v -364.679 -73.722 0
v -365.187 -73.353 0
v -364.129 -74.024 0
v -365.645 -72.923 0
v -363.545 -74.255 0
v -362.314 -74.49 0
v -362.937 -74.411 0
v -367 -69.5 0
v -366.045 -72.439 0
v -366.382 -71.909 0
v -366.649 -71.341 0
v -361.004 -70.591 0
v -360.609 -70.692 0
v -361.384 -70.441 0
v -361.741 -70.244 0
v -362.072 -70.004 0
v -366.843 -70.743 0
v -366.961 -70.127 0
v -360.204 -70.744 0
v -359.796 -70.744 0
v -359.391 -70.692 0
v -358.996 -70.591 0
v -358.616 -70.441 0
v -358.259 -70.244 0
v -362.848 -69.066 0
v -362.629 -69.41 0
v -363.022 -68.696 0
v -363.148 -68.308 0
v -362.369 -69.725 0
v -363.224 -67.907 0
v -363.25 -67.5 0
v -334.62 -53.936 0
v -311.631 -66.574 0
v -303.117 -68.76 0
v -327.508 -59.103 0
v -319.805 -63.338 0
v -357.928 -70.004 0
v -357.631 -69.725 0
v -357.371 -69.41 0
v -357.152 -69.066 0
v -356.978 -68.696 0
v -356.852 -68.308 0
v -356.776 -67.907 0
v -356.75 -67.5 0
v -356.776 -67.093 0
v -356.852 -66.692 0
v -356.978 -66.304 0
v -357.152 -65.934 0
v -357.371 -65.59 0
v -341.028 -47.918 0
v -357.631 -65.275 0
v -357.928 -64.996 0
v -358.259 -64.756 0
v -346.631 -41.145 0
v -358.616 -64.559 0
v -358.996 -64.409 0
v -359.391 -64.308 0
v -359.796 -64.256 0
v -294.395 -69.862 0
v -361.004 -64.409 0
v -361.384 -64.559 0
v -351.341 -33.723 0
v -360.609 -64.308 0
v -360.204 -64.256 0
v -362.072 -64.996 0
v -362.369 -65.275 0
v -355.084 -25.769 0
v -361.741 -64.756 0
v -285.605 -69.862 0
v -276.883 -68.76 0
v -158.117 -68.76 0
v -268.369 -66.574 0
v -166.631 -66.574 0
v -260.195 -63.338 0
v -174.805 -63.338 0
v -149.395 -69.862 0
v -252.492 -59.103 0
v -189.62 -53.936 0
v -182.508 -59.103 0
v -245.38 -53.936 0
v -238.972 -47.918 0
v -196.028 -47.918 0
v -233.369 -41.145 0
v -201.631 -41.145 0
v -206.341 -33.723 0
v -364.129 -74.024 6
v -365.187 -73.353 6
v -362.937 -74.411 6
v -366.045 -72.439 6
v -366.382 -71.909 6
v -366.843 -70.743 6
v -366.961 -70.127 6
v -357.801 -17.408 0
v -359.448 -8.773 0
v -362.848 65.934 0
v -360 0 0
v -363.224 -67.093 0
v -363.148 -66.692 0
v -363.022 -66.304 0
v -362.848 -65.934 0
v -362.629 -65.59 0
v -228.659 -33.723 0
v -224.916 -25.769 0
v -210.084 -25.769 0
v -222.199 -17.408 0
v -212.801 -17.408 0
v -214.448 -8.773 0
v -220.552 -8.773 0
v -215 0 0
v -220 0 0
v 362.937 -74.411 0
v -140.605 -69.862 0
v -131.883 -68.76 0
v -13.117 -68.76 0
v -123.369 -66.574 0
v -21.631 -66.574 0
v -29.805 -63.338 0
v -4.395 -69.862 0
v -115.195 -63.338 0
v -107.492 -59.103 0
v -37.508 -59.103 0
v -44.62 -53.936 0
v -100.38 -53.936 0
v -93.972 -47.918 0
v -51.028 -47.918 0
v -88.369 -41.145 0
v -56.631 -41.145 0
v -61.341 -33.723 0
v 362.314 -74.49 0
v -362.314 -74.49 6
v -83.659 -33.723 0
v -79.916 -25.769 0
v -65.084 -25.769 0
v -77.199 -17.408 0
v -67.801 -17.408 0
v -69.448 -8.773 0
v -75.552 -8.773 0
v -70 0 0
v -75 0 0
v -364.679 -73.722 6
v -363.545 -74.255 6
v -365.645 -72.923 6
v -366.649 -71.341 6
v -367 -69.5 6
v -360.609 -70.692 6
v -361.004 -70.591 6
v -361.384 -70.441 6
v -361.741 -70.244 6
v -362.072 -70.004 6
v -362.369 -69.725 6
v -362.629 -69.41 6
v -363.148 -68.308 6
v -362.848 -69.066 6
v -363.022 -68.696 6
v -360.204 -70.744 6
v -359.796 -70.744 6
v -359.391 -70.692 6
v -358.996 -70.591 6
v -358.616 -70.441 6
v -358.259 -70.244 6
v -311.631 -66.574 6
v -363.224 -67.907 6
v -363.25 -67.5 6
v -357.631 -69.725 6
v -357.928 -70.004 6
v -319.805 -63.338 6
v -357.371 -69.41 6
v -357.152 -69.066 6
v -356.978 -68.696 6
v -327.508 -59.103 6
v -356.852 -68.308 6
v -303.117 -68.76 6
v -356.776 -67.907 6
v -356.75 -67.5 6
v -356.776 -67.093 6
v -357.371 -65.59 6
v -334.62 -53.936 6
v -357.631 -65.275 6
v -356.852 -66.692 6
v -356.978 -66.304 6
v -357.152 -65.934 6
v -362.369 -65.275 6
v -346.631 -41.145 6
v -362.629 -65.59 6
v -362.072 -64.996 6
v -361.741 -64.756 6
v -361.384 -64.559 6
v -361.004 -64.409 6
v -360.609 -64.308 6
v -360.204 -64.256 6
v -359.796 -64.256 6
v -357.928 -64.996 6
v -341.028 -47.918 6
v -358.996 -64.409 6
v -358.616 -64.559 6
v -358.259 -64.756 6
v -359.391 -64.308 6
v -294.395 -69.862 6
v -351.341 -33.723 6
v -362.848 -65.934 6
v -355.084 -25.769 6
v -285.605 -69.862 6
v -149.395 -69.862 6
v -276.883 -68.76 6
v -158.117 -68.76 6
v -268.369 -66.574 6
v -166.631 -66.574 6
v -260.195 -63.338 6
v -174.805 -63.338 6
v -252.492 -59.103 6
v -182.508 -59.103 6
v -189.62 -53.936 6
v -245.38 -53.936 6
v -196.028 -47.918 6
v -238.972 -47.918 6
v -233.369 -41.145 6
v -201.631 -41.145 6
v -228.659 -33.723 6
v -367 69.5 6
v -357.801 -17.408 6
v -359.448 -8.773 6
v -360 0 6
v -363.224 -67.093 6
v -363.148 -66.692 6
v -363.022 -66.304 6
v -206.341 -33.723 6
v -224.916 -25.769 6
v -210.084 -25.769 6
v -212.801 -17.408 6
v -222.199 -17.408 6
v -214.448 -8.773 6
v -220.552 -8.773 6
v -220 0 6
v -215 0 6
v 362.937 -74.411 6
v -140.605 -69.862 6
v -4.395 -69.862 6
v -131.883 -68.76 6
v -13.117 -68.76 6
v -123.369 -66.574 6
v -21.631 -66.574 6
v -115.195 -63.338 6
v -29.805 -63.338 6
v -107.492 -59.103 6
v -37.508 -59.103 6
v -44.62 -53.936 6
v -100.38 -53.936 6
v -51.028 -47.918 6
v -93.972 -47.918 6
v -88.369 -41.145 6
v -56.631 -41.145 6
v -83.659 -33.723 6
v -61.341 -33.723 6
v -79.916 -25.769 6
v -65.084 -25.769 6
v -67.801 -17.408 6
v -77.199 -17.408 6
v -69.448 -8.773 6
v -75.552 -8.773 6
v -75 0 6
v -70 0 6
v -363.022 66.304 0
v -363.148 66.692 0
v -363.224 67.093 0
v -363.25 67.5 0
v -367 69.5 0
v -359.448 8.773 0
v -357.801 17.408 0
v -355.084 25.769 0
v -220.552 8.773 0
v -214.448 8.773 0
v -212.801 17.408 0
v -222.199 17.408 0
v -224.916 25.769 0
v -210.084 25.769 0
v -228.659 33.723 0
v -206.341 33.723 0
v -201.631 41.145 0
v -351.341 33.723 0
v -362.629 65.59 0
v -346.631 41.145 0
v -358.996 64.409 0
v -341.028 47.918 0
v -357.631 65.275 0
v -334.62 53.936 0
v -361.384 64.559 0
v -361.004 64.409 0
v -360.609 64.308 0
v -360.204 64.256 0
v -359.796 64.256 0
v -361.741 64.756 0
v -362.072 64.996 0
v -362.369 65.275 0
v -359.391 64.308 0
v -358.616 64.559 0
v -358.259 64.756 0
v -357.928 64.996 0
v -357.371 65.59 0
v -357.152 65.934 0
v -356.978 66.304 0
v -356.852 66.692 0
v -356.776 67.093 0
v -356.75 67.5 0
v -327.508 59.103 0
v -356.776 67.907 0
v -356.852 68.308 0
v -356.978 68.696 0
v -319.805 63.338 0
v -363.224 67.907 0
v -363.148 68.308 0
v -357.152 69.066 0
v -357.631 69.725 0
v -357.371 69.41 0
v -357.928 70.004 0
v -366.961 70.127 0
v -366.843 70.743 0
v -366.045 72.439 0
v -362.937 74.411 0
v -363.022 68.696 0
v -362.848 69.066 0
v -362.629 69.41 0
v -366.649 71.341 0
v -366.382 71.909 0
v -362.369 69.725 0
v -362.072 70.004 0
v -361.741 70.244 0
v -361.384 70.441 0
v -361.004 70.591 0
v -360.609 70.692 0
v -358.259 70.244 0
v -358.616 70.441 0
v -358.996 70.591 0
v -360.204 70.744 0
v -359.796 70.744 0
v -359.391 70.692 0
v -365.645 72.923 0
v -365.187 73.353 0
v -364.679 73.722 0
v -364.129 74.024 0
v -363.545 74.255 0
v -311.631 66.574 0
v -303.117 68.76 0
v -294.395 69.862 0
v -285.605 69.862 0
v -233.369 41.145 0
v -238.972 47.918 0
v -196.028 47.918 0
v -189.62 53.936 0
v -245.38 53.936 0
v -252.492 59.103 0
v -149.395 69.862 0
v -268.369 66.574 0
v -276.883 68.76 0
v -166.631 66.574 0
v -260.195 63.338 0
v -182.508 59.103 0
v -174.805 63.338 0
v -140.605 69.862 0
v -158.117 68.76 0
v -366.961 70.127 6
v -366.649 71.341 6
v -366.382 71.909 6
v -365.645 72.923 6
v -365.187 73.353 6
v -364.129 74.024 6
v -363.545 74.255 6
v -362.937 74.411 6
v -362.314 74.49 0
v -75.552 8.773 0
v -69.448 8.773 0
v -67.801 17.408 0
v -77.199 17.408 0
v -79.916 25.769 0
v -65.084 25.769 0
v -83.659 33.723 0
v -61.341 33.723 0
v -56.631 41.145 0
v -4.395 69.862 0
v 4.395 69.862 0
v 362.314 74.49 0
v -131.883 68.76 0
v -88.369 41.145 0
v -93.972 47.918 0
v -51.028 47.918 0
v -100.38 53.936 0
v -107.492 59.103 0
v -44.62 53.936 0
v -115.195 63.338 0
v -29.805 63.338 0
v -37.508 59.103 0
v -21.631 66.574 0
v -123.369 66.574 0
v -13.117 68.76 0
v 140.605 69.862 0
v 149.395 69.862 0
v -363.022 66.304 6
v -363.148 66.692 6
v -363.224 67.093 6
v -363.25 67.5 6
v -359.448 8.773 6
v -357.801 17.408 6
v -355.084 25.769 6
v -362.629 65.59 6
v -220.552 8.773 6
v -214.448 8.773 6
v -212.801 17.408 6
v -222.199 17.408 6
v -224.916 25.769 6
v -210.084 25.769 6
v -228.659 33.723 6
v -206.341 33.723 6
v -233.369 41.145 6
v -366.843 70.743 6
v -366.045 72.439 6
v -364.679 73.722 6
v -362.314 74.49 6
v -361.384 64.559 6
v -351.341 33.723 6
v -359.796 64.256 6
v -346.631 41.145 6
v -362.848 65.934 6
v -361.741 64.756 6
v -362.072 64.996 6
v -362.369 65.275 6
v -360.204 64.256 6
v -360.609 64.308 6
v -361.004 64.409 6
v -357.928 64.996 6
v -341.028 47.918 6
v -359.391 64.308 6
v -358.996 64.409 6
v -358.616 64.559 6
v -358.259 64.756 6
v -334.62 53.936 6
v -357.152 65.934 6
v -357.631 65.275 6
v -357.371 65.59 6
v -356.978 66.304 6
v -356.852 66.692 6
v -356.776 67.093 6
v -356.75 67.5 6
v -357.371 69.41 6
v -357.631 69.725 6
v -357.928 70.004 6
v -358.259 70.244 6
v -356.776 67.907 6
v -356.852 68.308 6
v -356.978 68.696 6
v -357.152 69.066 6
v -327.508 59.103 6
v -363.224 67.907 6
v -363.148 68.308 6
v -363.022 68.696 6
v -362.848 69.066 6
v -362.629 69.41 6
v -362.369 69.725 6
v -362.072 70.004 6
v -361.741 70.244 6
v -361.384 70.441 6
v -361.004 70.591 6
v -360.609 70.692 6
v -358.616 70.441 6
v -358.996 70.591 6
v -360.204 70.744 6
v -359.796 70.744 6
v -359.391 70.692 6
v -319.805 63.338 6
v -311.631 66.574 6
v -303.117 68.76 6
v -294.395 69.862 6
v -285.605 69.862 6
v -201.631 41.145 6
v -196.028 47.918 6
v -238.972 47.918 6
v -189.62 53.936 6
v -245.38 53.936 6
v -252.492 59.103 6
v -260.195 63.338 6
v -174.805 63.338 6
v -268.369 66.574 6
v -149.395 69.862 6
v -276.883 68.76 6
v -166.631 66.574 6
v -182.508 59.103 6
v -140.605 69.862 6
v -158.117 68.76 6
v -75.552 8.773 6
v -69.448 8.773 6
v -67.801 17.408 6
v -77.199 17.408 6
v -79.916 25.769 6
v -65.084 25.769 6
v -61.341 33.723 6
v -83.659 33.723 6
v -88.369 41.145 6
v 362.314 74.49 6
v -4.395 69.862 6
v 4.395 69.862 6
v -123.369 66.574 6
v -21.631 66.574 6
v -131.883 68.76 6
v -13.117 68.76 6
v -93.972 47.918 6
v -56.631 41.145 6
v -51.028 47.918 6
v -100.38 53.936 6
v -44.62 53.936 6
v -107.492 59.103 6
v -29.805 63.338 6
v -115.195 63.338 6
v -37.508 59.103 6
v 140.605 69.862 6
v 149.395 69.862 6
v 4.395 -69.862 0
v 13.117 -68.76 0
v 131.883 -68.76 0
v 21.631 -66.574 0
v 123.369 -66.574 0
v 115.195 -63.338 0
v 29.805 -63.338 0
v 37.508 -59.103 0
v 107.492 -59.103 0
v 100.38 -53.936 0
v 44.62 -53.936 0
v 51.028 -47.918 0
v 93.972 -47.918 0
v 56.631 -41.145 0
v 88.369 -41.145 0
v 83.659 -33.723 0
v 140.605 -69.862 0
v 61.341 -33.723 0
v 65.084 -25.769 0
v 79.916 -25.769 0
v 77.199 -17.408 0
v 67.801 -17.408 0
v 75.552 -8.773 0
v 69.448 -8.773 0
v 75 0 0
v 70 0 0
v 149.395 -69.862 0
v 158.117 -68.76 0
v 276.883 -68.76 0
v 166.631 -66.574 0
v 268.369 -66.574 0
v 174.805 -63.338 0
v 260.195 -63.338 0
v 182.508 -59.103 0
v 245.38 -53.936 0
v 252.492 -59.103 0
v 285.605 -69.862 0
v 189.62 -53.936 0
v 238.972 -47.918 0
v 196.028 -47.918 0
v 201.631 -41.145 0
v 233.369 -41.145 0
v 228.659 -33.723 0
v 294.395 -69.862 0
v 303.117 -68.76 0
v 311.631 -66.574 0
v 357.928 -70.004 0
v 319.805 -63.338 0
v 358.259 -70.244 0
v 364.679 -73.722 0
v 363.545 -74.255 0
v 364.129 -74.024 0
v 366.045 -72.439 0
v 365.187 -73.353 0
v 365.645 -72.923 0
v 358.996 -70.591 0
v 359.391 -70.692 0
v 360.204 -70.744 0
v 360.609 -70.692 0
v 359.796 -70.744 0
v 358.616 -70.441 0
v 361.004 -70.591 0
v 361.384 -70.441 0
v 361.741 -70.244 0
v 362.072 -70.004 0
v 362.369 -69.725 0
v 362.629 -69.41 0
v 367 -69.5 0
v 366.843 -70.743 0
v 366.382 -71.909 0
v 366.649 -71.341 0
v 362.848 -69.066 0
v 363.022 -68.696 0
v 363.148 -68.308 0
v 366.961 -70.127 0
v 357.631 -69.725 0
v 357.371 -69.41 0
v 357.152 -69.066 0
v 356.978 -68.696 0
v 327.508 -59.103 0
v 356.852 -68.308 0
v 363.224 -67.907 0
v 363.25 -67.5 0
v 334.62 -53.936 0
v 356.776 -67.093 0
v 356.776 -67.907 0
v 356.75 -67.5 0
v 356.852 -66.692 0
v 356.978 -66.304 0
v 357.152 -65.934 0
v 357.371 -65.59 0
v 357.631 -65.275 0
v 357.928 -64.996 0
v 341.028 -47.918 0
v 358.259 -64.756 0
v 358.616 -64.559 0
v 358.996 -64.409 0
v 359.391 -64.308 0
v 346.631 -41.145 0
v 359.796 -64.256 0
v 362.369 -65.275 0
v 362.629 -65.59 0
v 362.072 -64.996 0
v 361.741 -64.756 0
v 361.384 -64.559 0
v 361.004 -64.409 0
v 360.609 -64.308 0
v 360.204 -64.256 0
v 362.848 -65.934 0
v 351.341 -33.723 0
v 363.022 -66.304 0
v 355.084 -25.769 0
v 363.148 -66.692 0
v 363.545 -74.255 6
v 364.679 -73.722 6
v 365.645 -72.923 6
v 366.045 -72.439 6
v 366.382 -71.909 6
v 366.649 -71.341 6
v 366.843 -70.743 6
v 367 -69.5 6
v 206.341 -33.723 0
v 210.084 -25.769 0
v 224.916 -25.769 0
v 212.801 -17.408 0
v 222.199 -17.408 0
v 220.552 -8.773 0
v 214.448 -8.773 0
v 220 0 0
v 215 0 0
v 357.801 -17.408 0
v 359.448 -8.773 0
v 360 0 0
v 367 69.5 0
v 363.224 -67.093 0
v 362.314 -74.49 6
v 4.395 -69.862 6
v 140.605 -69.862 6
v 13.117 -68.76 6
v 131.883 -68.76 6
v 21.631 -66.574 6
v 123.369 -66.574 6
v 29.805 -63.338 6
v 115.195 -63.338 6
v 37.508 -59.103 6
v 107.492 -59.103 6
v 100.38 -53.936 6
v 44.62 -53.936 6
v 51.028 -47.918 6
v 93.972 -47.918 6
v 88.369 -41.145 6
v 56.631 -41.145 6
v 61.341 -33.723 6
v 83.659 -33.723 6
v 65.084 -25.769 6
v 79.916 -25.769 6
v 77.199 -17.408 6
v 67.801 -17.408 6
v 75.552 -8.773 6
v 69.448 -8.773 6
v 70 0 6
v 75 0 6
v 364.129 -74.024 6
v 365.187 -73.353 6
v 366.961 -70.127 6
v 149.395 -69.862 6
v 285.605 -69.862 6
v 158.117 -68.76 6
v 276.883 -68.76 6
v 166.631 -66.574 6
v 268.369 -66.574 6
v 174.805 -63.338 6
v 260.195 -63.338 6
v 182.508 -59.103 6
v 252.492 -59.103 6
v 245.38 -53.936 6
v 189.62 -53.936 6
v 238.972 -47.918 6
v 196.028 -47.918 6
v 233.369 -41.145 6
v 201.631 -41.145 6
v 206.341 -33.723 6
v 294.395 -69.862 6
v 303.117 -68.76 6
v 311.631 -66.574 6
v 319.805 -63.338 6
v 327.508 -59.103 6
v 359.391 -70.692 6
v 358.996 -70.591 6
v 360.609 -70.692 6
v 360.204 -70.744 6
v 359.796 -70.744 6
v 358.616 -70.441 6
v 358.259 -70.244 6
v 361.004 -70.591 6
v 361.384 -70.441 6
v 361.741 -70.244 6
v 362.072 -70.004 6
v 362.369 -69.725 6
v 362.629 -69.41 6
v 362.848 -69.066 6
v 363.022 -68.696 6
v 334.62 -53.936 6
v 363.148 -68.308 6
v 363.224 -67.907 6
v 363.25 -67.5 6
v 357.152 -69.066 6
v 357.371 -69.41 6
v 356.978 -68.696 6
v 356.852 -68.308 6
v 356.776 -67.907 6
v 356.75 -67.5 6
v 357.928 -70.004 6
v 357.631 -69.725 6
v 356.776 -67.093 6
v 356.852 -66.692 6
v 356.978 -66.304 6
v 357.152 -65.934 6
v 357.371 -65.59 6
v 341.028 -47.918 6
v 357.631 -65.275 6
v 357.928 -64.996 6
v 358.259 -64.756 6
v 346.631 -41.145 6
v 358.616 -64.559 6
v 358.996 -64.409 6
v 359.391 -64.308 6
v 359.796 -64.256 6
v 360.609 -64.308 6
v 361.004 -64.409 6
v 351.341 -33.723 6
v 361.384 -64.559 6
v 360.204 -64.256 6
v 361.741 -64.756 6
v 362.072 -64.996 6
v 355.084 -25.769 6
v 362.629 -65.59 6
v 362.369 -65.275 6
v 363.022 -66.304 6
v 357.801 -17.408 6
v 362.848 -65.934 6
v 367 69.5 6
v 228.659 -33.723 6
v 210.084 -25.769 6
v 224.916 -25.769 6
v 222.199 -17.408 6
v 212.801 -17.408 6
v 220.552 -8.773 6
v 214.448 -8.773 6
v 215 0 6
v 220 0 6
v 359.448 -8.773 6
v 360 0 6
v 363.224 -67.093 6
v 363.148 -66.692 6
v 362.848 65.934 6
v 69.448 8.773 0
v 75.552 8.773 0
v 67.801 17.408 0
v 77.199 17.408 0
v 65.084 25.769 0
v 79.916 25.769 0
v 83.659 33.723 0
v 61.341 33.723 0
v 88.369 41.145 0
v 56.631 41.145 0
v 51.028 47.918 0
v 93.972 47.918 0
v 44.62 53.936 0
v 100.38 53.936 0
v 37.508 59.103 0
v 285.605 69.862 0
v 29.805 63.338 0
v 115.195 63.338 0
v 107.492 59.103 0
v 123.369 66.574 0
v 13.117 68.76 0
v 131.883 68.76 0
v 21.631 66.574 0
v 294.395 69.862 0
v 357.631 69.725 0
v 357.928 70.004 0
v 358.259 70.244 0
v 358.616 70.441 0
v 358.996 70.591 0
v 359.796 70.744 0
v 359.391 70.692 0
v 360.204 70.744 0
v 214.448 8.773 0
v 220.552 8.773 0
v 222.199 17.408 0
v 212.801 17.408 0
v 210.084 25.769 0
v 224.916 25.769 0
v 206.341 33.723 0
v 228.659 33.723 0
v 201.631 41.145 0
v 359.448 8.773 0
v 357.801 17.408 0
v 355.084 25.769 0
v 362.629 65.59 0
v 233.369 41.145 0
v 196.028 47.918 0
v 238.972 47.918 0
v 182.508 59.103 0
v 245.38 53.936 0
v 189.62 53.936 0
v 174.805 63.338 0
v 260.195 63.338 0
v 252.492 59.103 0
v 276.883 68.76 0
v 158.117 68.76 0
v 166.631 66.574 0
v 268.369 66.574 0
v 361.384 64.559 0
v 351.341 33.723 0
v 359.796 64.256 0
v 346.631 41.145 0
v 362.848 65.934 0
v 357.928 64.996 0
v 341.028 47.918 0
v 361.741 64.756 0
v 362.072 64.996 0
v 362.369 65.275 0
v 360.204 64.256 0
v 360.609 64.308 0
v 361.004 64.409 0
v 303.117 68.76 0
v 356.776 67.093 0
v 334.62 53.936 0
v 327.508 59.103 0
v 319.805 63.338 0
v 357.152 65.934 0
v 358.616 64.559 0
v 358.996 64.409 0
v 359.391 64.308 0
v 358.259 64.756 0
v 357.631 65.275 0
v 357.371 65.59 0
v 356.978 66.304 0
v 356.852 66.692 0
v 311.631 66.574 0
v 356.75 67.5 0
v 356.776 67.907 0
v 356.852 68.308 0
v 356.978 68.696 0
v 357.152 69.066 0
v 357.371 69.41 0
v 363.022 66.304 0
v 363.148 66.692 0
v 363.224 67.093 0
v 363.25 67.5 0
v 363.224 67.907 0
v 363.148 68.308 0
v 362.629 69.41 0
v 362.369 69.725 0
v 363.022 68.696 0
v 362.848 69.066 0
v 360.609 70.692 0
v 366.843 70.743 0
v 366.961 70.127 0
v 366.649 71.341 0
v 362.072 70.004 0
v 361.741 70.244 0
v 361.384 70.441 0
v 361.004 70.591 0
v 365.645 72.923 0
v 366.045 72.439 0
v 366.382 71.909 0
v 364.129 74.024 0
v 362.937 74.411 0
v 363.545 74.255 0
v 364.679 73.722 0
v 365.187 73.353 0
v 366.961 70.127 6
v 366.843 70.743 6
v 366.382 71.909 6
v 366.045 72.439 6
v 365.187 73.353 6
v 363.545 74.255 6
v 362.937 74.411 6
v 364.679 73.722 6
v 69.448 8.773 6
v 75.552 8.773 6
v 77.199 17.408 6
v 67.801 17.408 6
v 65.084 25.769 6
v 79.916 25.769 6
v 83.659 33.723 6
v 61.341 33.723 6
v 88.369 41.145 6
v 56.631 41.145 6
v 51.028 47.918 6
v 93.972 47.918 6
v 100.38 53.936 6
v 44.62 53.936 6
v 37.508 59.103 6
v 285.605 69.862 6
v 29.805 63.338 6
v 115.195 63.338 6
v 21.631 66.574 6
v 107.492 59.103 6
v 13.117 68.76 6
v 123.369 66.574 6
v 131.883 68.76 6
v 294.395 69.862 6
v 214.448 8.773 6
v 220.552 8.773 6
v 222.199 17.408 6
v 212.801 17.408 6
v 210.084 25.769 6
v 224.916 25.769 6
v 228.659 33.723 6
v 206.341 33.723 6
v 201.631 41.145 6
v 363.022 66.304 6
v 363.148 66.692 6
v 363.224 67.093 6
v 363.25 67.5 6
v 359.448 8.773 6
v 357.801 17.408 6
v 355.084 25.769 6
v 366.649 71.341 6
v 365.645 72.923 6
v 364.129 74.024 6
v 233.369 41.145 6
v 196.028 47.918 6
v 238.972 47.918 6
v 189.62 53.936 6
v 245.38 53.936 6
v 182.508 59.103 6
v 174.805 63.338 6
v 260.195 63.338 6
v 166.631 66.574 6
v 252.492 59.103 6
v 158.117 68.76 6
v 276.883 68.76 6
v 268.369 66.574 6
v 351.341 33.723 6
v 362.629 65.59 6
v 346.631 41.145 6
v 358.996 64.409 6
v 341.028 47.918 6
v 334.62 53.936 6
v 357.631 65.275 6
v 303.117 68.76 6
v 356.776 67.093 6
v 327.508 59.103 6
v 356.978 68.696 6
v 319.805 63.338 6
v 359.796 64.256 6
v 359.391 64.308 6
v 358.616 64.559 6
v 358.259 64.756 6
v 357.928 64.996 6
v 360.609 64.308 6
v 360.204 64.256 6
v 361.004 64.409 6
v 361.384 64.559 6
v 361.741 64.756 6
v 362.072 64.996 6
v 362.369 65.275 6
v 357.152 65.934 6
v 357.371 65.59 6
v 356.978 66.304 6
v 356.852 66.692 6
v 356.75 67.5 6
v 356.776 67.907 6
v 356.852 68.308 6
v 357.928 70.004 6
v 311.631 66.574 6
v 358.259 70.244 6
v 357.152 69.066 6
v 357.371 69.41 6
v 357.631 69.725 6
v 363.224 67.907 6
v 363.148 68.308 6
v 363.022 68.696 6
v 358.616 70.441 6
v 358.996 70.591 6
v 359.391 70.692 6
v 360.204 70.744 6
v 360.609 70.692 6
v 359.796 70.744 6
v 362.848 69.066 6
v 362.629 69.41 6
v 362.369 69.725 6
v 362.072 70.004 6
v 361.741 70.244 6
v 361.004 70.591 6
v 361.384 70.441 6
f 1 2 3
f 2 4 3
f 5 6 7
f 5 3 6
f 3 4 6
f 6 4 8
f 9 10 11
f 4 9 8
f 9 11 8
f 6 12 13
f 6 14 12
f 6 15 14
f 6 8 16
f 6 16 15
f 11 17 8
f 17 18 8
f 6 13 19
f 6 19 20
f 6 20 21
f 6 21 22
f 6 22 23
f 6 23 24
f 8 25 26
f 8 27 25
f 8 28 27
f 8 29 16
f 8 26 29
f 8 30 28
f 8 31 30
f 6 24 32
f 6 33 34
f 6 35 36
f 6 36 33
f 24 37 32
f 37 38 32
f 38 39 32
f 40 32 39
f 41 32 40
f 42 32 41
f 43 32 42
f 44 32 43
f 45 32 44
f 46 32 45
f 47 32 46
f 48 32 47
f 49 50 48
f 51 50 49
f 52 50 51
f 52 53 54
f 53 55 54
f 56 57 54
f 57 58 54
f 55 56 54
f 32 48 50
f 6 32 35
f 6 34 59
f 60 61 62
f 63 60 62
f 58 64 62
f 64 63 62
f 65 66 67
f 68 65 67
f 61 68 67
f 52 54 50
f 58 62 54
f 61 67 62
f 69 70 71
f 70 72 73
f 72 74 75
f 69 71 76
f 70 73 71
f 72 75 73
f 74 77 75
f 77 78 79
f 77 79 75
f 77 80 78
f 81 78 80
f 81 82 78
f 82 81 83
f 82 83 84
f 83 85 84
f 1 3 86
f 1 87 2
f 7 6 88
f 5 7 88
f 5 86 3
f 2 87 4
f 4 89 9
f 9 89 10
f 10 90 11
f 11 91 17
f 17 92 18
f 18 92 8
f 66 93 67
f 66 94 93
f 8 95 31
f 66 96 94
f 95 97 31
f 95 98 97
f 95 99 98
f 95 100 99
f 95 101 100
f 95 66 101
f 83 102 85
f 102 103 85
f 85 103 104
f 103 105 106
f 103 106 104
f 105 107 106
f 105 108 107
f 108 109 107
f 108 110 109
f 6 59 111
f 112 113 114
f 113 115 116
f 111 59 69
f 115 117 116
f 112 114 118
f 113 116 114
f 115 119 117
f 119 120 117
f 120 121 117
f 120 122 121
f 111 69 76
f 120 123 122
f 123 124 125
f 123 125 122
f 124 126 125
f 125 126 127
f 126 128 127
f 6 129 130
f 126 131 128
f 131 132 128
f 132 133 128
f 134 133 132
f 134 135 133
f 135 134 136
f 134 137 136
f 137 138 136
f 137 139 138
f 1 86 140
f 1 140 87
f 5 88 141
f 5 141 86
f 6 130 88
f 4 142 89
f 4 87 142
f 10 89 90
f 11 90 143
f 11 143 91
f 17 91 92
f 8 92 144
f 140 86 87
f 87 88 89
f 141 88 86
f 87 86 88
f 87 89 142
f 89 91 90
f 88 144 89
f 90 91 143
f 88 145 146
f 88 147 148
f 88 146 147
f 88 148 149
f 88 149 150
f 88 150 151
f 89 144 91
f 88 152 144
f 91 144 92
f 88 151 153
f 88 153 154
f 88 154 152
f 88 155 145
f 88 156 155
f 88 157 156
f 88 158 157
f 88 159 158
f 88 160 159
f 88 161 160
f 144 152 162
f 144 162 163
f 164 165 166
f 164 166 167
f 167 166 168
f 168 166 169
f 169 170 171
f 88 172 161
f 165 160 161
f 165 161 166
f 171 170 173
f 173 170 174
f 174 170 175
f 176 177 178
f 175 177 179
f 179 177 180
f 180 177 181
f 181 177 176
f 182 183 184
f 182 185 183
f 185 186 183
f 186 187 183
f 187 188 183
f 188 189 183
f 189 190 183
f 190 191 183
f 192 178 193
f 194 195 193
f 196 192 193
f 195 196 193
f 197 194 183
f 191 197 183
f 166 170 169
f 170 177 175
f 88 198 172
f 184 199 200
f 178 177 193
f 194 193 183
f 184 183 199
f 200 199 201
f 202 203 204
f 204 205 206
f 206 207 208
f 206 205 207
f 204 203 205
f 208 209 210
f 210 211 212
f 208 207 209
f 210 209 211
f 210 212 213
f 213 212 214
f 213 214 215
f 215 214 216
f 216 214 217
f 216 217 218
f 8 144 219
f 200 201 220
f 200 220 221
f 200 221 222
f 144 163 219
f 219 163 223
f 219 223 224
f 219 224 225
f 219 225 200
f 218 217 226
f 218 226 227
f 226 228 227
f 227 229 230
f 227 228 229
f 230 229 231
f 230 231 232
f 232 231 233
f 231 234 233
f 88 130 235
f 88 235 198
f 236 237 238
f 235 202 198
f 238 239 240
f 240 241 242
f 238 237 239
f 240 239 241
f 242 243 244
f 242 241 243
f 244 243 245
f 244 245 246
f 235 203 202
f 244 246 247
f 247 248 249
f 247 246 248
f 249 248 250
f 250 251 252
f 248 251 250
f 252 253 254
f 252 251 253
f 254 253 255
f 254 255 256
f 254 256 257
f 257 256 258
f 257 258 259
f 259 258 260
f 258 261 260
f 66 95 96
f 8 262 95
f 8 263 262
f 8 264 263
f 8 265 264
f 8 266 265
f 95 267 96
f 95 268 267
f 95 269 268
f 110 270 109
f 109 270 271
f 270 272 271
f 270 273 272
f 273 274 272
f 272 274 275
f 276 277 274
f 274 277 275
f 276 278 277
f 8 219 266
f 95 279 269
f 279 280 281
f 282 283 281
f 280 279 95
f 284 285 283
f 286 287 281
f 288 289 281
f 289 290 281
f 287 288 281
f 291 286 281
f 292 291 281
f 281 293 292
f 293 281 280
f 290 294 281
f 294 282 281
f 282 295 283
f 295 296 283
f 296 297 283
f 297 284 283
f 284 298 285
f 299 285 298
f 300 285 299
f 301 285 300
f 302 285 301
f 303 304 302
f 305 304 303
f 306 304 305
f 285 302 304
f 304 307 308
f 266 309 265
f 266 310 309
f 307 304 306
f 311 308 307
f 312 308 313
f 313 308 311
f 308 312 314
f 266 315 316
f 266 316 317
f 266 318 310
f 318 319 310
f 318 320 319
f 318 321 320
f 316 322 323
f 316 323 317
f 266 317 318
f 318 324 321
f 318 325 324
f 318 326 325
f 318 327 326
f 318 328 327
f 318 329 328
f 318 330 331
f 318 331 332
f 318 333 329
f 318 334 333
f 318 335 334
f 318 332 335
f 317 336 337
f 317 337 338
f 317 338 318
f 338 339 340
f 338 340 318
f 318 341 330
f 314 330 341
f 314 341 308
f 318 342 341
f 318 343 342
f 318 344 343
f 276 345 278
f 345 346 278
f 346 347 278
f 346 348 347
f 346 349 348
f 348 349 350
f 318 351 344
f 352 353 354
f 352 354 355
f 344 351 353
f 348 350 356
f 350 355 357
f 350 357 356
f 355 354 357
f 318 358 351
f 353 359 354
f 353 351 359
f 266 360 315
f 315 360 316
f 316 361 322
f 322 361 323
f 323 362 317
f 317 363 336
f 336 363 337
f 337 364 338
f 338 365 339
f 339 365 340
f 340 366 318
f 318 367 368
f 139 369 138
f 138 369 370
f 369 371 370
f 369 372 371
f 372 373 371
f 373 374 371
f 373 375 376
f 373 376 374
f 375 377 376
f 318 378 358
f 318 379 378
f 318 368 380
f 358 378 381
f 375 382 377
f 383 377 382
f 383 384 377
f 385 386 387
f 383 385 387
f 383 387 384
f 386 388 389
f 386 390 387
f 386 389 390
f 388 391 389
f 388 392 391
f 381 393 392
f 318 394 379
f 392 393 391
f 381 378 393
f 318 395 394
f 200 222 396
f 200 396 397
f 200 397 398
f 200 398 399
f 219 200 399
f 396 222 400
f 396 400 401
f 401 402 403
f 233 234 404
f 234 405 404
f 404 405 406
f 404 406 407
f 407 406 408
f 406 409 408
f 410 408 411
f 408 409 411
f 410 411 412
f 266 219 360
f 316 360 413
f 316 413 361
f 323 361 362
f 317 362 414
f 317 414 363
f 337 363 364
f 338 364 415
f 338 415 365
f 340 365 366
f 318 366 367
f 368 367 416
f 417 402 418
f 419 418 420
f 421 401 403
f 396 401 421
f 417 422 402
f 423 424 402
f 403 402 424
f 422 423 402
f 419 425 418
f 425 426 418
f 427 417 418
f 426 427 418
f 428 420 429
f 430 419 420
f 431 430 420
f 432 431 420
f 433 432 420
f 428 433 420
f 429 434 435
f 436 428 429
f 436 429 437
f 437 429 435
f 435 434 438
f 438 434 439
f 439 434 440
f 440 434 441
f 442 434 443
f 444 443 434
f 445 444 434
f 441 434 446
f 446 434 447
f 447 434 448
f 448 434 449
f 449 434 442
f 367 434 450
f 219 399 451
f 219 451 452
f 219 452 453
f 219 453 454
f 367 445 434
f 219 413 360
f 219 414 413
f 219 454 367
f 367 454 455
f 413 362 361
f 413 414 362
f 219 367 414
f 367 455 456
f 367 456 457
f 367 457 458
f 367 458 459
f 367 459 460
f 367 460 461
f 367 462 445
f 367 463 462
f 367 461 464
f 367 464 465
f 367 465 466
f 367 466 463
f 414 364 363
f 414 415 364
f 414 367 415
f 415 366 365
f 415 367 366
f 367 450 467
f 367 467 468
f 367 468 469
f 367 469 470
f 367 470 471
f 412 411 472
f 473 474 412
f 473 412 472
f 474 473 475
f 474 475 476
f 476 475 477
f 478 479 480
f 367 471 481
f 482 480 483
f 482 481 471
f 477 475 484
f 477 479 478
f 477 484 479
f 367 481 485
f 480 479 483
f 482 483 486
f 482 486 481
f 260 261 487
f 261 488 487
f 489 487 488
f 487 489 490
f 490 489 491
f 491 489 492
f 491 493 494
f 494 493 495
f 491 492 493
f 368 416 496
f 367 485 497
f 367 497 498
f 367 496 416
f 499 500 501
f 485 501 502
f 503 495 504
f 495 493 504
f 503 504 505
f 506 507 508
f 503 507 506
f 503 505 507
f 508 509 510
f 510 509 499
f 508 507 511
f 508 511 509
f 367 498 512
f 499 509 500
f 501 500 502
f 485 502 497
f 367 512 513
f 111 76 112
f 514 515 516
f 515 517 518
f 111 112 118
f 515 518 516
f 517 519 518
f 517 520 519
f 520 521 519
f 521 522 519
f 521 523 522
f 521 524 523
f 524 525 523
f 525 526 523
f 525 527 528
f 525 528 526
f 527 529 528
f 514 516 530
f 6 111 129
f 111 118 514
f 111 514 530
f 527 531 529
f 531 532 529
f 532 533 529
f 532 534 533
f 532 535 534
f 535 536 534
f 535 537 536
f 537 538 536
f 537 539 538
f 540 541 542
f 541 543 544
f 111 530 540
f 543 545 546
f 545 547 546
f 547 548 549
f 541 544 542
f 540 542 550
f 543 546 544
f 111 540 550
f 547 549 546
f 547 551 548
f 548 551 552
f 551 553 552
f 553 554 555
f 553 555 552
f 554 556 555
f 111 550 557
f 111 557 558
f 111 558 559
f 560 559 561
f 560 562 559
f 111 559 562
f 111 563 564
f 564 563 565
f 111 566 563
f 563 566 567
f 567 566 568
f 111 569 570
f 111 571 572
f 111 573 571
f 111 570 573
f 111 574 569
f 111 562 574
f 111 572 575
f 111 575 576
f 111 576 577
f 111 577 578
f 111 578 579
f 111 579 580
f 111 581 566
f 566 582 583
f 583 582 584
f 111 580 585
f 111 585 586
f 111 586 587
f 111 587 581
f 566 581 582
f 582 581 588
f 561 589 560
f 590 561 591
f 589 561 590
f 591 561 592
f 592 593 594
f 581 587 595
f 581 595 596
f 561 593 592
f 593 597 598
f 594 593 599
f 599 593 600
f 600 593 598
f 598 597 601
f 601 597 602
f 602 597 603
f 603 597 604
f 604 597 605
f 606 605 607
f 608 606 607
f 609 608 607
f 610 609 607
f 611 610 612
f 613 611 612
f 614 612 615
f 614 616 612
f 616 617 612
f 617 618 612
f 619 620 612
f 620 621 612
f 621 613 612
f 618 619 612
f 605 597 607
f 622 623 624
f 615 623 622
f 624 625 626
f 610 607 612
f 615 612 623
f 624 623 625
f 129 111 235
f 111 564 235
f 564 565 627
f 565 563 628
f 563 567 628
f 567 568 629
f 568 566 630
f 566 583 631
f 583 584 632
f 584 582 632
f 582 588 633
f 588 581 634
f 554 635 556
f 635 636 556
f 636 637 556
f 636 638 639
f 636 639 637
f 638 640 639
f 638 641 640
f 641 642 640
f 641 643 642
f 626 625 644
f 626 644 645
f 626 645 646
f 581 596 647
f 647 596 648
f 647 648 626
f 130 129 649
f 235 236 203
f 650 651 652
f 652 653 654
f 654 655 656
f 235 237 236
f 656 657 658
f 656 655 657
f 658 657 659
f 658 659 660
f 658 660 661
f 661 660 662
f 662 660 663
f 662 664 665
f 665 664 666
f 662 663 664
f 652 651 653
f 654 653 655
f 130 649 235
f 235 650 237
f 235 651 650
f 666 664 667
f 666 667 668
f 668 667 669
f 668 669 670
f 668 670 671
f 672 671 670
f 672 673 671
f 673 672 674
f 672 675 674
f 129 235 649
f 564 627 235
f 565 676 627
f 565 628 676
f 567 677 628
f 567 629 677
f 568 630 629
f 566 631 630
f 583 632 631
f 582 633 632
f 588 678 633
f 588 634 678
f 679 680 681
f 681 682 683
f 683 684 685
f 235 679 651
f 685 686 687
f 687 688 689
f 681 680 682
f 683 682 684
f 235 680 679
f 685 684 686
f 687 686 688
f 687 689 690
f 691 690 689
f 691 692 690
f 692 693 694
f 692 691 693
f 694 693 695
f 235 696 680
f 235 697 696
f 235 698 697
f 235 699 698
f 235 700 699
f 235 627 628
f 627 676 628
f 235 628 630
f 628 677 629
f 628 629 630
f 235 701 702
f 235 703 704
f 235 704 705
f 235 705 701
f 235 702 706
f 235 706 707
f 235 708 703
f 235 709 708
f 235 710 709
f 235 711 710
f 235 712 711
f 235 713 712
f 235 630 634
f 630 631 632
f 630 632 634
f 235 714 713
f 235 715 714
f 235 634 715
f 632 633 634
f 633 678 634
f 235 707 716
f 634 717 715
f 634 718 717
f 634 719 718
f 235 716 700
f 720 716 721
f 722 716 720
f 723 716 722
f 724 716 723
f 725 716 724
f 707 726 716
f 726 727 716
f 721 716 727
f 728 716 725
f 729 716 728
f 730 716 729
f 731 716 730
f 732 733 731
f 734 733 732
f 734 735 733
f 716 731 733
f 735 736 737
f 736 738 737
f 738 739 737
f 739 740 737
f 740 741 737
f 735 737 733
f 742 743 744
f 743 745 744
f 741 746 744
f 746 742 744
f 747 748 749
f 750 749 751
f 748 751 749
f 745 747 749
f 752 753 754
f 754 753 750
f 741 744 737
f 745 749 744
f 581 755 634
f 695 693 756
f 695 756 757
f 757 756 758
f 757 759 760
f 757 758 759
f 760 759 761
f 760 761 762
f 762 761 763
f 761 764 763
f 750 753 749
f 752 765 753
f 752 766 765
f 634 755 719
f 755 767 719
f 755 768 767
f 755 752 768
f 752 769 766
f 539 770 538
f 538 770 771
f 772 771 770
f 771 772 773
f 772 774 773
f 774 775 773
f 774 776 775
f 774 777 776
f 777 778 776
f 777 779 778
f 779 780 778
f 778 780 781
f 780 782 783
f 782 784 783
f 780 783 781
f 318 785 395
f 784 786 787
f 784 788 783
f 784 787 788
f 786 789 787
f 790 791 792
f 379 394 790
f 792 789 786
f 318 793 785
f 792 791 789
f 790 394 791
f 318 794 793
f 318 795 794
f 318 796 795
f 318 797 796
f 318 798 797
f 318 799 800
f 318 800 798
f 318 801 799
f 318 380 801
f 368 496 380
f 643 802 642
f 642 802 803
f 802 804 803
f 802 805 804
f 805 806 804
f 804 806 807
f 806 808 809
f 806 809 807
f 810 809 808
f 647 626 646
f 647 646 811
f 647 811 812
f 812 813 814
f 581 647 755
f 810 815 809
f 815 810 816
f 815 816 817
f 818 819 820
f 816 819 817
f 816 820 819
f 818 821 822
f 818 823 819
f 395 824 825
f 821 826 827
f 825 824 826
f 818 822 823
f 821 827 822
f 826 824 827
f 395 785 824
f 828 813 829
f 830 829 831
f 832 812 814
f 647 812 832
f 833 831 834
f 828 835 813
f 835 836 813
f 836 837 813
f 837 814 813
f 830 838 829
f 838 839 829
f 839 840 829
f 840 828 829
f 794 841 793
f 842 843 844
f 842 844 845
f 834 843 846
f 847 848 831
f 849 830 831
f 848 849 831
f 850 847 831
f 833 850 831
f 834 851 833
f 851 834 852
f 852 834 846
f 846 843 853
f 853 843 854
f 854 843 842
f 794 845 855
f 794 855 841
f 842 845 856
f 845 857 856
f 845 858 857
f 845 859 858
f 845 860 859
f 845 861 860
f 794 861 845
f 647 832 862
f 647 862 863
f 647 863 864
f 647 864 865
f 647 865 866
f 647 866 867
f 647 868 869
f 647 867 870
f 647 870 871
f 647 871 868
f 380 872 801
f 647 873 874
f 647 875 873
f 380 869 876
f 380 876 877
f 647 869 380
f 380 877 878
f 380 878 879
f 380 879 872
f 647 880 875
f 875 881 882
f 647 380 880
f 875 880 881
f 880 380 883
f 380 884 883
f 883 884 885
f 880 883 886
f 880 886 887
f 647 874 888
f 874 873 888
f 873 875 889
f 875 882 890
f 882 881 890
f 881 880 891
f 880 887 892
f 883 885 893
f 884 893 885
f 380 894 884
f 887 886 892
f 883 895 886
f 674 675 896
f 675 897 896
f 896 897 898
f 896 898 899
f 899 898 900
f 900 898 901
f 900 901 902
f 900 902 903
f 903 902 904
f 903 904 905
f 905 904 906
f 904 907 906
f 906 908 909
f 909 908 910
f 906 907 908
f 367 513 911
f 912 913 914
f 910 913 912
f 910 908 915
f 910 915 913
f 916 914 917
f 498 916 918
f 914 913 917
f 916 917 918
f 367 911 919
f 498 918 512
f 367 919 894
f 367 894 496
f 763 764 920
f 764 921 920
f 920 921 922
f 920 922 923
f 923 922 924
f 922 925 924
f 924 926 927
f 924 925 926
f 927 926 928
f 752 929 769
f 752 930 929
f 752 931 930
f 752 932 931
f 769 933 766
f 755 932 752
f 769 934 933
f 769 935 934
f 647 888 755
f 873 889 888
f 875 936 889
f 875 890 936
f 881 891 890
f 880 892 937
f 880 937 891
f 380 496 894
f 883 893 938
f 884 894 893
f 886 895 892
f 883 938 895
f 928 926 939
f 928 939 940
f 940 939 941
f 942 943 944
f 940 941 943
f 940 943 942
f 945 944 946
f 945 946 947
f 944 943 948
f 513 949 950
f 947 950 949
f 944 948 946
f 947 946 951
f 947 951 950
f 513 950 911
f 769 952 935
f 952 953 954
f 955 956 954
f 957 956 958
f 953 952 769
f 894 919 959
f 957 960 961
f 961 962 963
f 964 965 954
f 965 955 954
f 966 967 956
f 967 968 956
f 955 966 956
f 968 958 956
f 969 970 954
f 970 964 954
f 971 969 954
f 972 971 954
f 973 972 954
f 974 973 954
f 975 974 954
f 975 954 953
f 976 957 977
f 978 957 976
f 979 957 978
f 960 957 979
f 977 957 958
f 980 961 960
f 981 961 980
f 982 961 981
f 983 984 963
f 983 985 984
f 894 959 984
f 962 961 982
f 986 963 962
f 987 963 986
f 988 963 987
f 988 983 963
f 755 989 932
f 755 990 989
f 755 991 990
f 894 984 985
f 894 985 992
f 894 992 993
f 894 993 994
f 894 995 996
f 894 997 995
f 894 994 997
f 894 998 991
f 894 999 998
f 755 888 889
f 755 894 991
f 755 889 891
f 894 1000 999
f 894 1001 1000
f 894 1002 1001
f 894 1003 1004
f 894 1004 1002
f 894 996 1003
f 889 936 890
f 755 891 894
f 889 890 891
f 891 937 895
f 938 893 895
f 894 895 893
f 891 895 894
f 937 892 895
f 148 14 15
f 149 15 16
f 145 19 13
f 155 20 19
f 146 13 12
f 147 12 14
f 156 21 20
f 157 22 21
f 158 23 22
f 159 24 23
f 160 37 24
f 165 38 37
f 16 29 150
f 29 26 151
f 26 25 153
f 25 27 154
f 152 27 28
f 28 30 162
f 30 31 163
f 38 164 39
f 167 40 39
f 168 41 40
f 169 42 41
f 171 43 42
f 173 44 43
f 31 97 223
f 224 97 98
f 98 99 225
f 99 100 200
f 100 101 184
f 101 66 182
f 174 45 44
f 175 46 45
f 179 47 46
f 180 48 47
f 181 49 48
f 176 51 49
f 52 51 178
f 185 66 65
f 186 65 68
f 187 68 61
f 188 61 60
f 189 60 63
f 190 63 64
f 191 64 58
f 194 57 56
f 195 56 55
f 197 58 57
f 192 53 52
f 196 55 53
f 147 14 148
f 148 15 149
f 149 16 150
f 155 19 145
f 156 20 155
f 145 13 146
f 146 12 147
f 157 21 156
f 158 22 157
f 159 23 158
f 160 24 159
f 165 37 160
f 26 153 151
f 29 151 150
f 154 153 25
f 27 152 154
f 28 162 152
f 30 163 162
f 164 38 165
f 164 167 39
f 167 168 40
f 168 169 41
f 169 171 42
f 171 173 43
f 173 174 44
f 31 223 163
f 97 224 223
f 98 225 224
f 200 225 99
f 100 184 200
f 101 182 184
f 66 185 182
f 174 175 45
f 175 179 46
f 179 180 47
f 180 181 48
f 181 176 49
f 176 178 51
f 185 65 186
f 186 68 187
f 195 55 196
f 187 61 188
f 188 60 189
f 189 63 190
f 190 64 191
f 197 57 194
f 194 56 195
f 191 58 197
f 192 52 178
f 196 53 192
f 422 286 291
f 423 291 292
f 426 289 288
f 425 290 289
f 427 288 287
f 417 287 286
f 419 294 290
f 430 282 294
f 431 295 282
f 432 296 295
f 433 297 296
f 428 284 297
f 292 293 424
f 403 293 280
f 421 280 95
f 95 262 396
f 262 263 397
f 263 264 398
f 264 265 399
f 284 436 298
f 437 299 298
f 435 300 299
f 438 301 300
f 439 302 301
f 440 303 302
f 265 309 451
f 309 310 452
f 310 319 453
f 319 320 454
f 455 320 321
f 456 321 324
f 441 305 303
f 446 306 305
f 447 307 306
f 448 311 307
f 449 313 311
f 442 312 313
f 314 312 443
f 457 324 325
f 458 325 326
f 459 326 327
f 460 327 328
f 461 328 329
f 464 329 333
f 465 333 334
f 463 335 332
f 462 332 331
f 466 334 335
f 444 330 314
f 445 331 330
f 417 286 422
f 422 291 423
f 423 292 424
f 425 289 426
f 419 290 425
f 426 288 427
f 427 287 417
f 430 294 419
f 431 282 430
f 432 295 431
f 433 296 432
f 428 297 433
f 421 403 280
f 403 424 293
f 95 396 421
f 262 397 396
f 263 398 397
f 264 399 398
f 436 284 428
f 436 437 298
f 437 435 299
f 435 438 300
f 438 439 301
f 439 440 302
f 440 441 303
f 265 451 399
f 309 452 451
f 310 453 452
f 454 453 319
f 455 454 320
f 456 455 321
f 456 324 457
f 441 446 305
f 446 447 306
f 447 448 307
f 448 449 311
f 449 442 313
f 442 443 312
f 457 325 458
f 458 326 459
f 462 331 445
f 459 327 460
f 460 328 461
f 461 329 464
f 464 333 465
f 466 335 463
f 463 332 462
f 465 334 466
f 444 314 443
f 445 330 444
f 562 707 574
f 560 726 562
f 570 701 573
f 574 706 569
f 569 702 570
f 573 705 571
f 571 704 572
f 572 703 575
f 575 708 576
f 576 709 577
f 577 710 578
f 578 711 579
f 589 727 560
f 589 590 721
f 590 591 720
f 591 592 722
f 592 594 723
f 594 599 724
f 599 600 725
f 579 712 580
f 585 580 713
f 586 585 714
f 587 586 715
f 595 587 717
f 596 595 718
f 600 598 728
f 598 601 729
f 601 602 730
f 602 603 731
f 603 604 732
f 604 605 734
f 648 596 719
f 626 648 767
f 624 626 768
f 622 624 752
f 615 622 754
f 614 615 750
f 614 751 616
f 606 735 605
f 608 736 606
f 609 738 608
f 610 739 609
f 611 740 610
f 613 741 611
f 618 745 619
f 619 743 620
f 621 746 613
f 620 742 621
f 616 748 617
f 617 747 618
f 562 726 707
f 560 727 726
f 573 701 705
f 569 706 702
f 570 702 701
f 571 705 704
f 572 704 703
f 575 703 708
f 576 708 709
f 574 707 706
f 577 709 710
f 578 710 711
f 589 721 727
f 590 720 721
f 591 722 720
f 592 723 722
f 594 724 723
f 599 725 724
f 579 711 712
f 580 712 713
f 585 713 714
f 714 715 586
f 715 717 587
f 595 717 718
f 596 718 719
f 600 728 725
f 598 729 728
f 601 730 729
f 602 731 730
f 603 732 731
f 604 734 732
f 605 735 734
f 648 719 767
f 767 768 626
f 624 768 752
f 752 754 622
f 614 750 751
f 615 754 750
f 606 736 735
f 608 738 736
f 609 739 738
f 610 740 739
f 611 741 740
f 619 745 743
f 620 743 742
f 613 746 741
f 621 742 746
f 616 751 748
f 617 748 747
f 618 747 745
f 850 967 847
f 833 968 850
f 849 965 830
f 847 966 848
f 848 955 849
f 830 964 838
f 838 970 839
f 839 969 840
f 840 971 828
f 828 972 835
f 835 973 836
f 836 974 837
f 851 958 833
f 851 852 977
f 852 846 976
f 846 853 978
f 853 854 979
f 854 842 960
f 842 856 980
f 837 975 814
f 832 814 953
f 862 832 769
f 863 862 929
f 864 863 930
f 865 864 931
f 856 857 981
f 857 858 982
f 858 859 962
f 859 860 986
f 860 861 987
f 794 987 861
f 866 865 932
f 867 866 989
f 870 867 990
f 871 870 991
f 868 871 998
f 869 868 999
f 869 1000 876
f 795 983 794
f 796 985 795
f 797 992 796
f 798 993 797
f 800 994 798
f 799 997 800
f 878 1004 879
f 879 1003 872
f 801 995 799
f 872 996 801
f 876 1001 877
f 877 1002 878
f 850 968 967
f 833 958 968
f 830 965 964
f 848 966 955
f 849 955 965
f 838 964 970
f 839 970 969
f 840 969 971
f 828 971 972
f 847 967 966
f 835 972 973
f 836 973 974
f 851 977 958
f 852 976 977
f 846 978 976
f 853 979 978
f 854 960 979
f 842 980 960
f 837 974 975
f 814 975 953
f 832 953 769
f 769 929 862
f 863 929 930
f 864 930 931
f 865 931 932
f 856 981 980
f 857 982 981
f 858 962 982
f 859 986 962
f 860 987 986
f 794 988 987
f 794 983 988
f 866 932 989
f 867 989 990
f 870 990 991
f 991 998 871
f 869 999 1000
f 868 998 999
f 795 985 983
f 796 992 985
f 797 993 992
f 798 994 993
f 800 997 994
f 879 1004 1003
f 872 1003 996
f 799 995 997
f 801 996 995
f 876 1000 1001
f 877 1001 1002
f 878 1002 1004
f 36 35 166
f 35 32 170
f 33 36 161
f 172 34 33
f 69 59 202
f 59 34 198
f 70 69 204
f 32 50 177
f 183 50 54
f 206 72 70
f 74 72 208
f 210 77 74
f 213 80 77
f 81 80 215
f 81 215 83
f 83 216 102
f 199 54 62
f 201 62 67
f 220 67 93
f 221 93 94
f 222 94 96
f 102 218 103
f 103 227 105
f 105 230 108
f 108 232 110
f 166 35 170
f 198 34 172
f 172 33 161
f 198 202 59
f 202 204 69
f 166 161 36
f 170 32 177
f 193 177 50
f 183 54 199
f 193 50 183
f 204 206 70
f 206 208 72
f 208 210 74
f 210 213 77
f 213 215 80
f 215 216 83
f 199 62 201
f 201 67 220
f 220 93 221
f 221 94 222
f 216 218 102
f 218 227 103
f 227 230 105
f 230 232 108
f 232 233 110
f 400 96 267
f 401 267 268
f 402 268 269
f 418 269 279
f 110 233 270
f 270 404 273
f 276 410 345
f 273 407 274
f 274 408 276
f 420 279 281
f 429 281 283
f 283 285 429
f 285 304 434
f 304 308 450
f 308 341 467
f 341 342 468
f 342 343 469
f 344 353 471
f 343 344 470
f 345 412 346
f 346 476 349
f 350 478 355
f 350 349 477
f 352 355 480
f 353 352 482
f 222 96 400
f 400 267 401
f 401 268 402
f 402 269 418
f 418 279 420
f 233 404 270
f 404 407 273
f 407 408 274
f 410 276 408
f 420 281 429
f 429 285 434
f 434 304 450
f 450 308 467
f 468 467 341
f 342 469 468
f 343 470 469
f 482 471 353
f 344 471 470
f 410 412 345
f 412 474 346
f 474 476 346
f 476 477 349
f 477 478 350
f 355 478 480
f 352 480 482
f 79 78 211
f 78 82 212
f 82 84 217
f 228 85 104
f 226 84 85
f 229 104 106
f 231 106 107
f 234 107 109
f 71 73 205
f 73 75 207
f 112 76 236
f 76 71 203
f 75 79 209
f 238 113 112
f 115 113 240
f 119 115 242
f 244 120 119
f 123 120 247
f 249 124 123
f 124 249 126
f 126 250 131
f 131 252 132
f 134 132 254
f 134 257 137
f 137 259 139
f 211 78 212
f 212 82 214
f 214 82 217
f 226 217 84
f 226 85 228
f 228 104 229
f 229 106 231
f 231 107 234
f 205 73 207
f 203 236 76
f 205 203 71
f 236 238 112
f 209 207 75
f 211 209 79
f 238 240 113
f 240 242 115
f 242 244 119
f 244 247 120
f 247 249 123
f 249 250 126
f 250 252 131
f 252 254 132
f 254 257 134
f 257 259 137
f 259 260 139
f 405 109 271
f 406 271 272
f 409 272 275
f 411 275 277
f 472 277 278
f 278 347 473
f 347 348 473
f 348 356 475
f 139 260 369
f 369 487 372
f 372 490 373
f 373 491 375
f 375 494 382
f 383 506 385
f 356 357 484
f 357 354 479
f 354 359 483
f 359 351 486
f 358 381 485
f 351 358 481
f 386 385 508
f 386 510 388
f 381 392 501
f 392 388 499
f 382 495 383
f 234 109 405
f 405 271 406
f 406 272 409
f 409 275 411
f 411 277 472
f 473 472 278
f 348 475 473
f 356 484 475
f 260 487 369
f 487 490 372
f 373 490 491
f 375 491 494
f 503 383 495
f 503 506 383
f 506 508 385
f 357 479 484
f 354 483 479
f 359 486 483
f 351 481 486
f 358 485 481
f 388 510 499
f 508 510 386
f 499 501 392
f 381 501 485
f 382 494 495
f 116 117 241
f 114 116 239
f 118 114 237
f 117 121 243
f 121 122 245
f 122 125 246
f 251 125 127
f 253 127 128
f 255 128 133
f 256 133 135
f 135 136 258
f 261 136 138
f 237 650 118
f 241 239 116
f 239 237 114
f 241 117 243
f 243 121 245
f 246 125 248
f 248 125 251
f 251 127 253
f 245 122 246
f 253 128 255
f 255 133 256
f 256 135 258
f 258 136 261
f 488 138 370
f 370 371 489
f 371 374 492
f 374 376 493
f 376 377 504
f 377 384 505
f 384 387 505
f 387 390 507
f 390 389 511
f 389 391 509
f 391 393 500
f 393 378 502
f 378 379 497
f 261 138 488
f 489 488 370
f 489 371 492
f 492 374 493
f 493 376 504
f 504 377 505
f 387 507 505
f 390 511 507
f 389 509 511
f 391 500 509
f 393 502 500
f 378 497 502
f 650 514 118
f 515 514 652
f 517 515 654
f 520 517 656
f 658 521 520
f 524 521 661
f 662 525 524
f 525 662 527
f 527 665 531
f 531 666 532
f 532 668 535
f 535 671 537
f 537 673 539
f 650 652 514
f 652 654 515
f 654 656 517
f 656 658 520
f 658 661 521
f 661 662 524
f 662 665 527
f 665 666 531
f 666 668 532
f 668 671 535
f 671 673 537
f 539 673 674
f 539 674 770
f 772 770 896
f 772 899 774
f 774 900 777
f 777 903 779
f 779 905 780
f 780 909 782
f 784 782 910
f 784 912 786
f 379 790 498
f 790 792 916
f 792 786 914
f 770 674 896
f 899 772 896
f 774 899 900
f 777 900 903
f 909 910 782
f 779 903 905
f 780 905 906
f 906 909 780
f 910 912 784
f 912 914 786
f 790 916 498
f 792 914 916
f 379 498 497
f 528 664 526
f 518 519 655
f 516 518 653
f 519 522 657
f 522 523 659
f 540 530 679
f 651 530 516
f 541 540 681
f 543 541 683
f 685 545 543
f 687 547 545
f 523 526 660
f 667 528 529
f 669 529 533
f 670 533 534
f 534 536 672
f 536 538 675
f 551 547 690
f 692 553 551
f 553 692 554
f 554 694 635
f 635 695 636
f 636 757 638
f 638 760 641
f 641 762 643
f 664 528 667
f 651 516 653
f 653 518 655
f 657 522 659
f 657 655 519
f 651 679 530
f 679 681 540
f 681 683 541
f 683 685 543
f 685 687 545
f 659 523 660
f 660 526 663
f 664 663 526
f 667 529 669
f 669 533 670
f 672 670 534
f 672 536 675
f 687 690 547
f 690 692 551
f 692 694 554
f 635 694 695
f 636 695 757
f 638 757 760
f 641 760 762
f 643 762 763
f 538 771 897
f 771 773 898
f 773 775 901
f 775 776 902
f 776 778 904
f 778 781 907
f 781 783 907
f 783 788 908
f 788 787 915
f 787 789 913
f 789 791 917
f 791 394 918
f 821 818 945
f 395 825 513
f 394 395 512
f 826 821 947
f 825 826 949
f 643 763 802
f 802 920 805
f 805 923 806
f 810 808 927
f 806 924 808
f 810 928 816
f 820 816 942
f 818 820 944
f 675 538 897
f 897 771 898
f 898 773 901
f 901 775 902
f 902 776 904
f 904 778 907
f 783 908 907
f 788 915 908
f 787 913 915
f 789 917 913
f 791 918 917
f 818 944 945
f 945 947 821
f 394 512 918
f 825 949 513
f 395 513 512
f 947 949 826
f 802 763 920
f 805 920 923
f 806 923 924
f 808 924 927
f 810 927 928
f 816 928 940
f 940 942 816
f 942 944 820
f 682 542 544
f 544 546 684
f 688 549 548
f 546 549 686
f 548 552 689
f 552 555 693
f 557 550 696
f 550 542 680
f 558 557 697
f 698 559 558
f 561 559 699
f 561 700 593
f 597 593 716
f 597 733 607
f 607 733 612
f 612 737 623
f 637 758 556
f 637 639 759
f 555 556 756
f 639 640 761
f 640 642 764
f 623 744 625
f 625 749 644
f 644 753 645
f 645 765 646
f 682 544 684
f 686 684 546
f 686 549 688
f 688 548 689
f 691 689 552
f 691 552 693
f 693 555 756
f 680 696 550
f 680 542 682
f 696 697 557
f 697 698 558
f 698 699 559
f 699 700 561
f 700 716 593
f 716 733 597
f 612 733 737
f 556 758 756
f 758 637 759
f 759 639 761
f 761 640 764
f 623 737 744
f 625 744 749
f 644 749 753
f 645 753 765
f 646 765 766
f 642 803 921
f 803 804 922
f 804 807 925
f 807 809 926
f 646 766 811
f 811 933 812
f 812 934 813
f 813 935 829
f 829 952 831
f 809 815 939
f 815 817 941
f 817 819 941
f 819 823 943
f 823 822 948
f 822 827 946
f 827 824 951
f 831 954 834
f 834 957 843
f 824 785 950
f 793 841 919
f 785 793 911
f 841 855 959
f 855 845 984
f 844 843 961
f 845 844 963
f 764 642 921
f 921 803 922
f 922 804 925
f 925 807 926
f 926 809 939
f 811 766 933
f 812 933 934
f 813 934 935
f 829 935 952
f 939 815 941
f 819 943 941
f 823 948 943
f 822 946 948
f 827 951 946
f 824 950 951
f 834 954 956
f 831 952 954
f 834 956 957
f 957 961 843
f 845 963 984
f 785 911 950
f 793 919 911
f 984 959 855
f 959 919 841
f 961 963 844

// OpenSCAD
$fn = 50;

difference() {
	union() {
		hull() {
			translate(v = [-362.0, 69.5, 0]) {
				cylinder(h = 6, r = 5);
			}
			translate(v = [362.0, 69.5, 0]) {
				cylinder(h = 6, r = 5);
			}
			translate(v = [-362.0, -69.5, 0]) {
				cylinder(h = 6, r = 5);
			}
			translate(v = [362.0, -69.5, 0]) {
				cylinder(h = 6, r = 5);
			}
		}
	}
	union() {
		translate(v = [-360.0, -67.5, -100.0]) {
			cylinder(h = 200, r = 3.25);
		}
		translate(v = [-360.0, 67.5, -100.0]) {
			cylinder(h = 200, r = 3.25);
		}
		translate(v = [360.0, -67.5, -100.0]) {
			cylinder(h = 200, r = 3.25);
		}
		translate(v = [360.0, 67.5, -100.0]) {
			cylinder(h = 200, r = 3.25);
		}
		translate(v = [-360.0, -67.5, -100.0]) {
			cylinder(h = 200, r = 1.8);
		}
		translate(v = [-360.0, 67.5, -100.0]) {
			cylinder(h = 200, r = 1.8);
		}
		translate(v = [360.0, -67.5, -100.0]) {
			cylinder(h = 200, r = 1.8);
		}
		translate(v = [360.0, 67.5, -100.0]) {
			cylinder(h = 200, r = 1.8);
		}
		translate(v = [-290.0, 0, 0.0]) {
			cylinder(h = 6, r = 70.0);
		}
		translate(v = [-145.0, 0, 0.0]) {
			cylinder(h = 6, r = 70.0);
		}
		cylinder(h = 6, r = 70.0);
		translate(v = [145.0, 0, 0.0]) {
			cylinder(h = 6, r = 70.0);
		}
		translate(v = [290.0, 0, 0.0]) {
			cylinder(h = 6, r = 70.0);
		}
	}
}
